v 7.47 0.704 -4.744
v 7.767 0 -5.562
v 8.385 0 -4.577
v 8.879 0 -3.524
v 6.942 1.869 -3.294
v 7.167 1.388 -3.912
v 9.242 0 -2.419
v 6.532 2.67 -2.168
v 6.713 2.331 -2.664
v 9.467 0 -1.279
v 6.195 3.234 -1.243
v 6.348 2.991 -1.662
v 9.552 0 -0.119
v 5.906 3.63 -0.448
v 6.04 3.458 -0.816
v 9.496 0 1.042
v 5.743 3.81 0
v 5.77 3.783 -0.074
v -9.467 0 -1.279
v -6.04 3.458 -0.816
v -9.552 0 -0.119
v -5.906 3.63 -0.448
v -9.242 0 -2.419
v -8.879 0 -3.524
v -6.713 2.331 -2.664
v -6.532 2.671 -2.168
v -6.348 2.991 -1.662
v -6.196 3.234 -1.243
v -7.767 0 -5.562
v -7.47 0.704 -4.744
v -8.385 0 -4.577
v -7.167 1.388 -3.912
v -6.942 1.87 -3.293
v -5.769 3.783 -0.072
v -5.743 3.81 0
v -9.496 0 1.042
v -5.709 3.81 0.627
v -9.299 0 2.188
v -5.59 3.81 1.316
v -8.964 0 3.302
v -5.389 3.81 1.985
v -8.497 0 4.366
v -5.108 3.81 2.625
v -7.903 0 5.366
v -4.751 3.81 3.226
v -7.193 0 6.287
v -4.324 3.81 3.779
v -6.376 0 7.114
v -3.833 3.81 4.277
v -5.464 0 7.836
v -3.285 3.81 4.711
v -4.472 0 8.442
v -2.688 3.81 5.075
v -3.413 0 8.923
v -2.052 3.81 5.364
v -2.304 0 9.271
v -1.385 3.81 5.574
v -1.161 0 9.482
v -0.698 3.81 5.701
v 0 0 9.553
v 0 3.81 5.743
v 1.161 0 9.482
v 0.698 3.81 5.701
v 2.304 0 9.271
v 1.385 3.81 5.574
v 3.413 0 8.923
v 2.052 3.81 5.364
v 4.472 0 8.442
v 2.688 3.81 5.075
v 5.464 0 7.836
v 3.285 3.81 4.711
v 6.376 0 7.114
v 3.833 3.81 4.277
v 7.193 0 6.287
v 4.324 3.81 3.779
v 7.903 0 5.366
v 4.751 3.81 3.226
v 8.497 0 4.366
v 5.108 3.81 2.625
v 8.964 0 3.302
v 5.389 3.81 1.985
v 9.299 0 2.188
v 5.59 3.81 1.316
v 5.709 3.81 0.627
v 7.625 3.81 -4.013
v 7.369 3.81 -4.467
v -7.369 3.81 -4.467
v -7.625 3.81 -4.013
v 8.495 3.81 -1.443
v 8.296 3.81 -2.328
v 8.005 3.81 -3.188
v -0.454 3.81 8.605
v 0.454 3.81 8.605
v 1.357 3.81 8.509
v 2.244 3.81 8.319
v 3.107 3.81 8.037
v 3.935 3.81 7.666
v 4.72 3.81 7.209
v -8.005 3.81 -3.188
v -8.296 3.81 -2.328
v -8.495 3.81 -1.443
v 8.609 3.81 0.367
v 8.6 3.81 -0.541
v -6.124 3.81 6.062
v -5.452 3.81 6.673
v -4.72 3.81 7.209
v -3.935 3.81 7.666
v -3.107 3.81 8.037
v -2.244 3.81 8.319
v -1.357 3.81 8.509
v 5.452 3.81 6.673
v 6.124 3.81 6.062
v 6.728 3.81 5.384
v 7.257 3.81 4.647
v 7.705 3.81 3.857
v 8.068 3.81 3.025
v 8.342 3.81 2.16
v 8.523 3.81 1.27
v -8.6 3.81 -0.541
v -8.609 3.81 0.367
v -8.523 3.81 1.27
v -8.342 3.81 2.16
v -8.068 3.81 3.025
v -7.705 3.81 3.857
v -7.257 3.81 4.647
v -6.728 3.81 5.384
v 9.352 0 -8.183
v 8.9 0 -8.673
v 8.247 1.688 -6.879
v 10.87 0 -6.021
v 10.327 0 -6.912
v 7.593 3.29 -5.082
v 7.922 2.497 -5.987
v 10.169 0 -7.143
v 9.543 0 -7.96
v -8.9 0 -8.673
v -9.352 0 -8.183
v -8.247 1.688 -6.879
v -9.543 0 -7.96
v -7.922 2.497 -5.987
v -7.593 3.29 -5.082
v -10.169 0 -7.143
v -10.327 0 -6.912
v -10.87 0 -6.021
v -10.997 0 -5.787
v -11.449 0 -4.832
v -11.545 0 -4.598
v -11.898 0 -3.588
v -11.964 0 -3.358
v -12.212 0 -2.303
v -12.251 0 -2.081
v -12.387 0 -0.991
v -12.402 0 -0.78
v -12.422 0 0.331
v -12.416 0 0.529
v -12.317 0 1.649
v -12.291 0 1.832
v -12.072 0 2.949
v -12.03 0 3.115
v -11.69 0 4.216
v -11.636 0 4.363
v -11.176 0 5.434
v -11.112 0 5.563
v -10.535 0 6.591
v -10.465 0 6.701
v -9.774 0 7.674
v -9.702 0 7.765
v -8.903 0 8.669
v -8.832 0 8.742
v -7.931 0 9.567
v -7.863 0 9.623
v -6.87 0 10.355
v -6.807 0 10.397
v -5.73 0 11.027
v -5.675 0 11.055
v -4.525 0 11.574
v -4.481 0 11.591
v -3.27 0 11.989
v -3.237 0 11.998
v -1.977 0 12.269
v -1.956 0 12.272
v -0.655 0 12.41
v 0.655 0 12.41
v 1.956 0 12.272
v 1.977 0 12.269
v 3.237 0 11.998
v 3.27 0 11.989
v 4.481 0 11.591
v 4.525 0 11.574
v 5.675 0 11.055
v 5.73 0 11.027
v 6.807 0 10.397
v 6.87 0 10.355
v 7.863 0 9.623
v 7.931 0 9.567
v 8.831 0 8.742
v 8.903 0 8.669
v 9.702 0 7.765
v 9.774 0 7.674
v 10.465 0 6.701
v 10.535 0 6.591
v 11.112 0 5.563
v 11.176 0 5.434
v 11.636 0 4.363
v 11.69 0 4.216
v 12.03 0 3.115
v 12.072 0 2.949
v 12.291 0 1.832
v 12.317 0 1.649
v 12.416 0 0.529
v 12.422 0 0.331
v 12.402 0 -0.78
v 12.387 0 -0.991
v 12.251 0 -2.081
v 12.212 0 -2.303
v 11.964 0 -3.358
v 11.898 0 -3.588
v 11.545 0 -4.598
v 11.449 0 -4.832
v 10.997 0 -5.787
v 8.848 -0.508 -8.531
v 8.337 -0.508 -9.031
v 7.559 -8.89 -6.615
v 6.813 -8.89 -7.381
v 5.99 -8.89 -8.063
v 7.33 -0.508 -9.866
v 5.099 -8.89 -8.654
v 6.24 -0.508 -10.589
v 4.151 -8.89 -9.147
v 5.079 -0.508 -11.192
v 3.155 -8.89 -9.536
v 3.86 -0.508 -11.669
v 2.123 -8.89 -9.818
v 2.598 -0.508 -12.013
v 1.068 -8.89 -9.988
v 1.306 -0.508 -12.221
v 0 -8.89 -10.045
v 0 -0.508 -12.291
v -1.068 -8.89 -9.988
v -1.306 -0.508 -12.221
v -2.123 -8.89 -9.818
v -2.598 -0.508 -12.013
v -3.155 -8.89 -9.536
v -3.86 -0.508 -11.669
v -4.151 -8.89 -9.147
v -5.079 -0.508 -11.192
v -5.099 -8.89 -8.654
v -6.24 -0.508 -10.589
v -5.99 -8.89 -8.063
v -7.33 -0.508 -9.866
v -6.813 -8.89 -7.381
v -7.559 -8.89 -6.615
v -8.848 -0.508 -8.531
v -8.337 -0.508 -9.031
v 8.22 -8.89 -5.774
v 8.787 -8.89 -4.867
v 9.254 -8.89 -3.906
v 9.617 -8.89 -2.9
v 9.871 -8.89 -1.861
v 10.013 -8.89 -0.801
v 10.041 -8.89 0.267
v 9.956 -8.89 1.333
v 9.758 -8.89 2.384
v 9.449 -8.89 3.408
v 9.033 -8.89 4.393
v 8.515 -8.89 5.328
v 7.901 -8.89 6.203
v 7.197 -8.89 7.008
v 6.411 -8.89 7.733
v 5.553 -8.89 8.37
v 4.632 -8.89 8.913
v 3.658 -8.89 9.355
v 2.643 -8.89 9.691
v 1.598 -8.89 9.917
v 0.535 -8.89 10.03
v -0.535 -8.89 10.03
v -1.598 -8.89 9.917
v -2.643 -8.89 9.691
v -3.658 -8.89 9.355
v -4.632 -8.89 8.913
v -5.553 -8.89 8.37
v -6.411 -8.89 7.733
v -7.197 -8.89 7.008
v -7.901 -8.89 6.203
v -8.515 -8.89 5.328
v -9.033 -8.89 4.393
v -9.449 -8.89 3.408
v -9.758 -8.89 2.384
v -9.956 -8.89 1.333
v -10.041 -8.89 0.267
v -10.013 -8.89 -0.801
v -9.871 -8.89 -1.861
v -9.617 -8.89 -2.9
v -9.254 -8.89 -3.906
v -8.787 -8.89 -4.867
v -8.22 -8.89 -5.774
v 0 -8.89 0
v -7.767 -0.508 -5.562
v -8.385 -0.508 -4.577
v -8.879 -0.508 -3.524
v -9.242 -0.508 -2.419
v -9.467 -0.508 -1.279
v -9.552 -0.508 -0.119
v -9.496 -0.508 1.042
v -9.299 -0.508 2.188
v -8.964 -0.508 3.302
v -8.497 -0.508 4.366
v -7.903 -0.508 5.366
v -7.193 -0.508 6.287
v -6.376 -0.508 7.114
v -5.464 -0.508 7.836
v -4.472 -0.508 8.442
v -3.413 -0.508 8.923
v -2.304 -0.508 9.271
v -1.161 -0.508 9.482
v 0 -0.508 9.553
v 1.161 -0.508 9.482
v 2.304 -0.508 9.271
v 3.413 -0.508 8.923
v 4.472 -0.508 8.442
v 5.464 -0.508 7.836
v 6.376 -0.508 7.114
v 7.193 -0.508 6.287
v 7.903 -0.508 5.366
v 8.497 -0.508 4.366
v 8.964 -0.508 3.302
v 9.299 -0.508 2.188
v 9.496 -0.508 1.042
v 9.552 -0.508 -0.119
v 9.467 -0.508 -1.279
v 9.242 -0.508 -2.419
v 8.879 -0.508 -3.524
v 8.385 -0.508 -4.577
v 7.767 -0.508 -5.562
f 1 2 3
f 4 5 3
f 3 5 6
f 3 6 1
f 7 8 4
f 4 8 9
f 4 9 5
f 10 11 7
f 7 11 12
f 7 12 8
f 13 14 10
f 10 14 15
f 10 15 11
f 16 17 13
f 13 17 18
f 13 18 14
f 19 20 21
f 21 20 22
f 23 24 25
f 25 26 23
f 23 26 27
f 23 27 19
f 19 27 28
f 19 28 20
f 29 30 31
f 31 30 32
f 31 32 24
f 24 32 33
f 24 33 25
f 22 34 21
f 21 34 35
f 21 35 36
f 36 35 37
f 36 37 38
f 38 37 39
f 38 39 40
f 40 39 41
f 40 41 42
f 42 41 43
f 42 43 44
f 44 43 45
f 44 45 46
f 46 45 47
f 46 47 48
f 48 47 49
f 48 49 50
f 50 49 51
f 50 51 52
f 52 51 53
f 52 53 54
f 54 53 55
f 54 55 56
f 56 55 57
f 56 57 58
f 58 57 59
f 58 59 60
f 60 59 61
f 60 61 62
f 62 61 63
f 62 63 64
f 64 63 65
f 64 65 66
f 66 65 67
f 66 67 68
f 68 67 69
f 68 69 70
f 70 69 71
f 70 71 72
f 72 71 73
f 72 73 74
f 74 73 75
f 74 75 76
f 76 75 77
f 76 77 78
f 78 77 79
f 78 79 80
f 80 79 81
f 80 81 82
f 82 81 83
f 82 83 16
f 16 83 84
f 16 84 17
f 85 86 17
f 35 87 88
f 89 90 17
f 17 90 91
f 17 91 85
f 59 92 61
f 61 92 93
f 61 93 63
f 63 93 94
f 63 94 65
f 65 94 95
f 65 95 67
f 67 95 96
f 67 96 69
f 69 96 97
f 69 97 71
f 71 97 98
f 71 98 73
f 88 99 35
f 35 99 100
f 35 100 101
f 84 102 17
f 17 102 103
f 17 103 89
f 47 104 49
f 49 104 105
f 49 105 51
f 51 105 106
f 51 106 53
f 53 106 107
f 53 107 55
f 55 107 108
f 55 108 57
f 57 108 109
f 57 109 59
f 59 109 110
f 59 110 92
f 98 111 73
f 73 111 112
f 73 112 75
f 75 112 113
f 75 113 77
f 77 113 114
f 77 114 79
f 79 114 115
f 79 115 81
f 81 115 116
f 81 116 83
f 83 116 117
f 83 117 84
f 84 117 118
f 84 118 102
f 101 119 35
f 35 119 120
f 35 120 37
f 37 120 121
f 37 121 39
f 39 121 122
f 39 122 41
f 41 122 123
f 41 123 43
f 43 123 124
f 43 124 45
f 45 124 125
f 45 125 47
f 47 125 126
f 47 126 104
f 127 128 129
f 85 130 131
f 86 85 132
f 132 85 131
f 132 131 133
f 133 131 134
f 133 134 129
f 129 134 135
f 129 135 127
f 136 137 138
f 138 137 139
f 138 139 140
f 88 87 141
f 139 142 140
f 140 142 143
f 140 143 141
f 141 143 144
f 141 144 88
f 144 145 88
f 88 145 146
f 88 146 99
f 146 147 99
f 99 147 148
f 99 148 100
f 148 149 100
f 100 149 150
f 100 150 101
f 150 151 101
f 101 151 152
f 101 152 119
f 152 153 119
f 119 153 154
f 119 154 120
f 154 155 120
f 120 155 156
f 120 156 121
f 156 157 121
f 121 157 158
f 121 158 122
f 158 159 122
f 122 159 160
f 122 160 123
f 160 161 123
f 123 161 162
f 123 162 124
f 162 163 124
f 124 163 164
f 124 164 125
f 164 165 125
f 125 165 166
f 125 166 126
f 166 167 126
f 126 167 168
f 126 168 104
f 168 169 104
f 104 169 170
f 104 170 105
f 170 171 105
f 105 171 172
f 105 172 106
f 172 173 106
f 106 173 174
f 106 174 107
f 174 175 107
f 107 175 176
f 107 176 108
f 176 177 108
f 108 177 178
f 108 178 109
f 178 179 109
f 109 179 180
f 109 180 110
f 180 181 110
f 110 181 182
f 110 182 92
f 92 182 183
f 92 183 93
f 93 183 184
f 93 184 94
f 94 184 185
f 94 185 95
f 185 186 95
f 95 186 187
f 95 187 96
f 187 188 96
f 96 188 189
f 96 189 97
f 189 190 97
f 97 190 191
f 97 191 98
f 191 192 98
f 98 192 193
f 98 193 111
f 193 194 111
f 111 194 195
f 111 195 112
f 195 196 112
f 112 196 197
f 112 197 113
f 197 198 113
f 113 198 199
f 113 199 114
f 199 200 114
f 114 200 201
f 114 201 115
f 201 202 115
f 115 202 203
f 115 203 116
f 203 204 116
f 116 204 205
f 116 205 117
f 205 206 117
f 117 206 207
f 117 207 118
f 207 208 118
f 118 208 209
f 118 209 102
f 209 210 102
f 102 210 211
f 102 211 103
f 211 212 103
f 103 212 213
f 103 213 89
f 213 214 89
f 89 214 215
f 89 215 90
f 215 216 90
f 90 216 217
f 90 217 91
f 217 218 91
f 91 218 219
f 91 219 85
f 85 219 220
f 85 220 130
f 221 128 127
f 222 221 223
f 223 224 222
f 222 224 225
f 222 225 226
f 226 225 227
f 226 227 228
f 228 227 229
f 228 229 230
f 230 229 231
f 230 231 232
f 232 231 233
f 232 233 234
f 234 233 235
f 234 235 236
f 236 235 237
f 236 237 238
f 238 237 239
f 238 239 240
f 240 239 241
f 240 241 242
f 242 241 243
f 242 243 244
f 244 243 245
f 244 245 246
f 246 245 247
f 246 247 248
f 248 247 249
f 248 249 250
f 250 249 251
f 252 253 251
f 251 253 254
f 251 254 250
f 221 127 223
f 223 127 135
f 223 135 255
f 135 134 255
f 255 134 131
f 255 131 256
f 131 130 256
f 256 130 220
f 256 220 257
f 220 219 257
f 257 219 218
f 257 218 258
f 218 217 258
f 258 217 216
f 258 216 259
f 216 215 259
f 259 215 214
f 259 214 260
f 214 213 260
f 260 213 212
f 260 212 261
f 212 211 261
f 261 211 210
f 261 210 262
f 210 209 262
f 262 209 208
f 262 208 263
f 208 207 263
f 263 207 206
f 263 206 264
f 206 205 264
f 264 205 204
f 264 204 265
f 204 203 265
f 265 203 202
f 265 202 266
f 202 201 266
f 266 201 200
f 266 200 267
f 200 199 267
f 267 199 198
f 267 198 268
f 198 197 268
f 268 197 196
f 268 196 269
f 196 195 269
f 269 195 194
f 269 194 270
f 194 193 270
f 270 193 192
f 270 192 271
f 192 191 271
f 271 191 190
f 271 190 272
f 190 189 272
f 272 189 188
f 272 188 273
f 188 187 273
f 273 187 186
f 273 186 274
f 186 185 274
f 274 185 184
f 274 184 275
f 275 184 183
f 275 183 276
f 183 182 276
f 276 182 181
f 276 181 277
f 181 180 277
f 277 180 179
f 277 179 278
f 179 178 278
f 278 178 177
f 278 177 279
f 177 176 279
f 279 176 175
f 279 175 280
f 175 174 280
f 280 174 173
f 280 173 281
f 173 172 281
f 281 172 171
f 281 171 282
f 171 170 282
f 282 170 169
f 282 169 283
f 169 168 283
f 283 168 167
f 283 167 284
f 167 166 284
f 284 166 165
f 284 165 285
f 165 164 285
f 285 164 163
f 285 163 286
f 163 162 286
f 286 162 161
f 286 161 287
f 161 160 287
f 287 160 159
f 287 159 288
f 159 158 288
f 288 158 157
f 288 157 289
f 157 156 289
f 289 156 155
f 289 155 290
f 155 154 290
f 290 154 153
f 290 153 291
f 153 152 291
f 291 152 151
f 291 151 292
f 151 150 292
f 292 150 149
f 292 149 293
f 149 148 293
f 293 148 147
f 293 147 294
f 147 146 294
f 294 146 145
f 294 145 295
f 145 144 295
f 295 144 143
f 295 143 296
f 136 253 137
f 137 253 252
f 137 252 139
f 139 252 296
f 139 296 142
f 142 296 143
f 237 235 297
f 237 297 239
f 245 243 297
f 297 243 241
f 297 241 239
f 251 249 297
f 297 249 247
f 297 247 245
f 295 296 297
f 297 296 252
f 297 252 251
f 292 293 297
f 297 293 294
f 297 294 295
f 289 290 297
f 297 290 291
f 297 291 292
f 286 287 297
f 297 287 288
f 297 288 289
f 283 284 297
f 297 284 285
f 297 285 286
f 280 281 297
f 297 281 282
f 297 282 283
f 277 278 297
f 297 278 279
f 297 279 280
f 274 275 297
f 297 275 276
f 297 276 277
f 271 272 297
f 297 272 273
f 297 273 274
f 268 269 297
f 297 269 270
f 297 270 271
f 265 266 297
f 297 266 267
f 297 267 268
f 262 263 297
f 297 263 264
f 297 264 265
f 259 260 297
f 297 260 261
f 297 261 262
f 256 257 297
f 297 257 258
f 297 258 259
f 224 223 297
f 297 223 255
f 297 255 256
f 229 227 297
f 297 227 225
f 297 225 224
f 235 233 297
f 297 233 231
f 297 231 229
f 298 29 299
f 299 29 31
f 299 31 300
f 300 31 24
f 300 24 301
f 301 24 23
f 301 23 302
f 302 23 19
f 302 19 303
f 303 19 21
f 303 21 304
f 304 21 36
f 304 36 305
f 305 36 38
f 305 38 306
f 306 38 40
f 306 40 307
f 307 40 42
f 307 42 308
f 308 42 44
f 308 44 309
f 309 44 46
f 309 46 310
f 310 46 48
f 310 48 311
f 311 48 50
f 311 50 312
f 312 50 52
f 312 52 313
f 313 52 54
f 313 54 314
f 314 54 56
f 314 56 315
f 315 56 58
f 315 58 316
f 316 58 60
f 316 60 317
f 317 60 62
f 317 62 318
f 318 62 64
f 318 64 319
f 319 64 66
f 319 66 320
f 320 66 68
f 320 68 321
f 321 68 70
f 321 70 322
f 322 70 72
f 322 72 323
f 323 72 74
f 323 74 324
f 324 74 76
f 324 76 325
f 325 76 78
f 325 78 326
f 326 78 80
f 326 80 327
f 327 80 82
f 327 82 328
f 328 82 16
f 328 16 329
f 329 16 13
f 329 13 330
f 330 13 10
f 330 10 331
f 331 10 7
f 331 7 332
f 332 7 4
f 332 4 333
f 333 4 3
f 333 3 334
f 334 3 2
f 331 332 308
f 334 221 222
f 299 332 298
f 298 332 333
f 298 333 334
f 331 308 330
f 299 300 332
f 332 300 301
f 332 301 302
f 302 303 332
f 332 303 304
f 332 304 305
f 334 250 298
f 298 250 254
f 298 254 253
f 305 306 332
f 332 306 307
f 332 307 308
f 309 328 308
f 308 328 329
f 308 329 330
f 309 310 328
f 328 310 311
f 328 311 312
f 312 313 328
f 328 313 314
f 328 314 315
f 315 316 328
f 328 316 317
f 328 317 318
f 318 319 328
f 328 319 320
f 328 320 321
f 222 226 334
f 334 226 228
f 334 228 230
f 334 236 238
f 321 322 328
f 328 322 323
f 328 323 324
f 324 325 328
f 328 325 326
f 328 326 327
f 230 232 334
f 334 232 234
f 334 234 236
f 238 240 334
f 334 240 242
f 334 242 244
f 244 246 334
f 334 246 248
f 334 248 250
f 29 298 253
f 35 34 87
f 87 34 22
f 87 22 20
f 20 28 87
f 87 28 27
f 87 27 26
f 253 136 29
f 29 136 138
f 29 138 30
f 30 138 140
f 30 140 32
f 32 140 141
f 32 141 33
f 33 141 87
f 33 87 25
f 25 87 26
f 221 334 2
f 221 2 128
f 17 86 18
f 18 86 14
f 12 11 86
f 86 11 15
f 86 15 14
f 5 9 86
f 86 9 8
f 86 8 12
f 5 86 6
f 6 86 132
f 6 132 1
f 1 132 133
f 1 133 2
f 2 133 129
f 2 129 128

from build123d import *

# Parameters (mm, degrees)
SKETCH8_R           = 12.426789642
BOSS_EXTRUDE3_DEPTH = 8.89
BOSS_EXTRUDE3_TAPER = 15
SKETCH9_R           = 9.553107684
CUT_EXTRUDE1_DEPTH  = 0.508
CUT_EXTRUDE4_REACH  = 23.683


with BuildPart() as part:
    # Sketch7 → Revolve1 (revolve)
    with BuildSketch(Plane.XY, mode=Mode.PRIVATE) as revolve1_sk:
        Polygon((9.553107684, 0), (5.743107684, 3.81), (8.616789642, 3.81), (12.426789642, 0), align=None)
    revolve(revolve1_sk.sketch.rotate(Axis((0, 0, 0), (0, 1, 0)), 90), axis=Axis((0, 0, 0), (0, 1, 0)))

    # Sketch8 → Boss-Extrude3 (add)
    with BuildSketch(Plane.XZ):
        Circle(SKETCH8_R)
    extrude(amount=BOSS_EXTRUDE3_DEPTH, taper=BOSS_EXTRUDE3_TAPER)

    # Sketch9 → Cut-Extrude1 (cut)
    with BuildSketch(Plane(origin=(0, 0, 0), x_dir=(1, 0, 0), z_dir=(0, 1, 0))):
        with Locations(Location((0, 0, 0), (0, 0, 270))):
            Circle(SKETCH9_R)
    extrude(amount=-CUT_EXTRUDE1_DEPTH, mode=Mode.SUBTRACT)

    # Cut-Extrude4: up to this face of the body (flat: up to its plane)
    cut_extrude4_end = Plane(part.part.faces().sort_by_distance((0, -0.508, 0))[0])
    # Sketch13 → Cut-Extrude4 (cut, up to the picked face)
    with BuildSketch(Plane(origin=(0, 3.81, 0), x_dir=(1, 0, 0), z_dir=(0, 1, 0)), mode=Mode.PRIVATE) as cut_extrude4_sk1:
        with BuildLine():
            Line((-5.743107684, 0), (-8.89978102, 8.672888712))
            ThreePointArc((-8.89978102, 8.672888712), (0, 12.426789642), (8.89978102, 8.672888712))
            Line((8.89978102, 8.672888712), (5.743107684, 0))
            ThreePointArc((5.743107684, 0), (0, 5.743107684), (-5.743107684, 0))
        make_face()
    cut_extrude4_tool1 = split(extrude(cut_extrude4_sk1.sketch, amount=-CUT_EXTRUDE4_REACH, mode=Mode.PRIVATE), bisect_by=cut_extrude4_end, keep=Keep.BOTH, mode=Mode.PRIVATE)
    add(cut_extrude4_tool1.solids().sort_by(Axis((0, 3.81, -7.700849), (0, -1, 0)))[0], mode=Mode.SUBTRACT)


solid = part.part
